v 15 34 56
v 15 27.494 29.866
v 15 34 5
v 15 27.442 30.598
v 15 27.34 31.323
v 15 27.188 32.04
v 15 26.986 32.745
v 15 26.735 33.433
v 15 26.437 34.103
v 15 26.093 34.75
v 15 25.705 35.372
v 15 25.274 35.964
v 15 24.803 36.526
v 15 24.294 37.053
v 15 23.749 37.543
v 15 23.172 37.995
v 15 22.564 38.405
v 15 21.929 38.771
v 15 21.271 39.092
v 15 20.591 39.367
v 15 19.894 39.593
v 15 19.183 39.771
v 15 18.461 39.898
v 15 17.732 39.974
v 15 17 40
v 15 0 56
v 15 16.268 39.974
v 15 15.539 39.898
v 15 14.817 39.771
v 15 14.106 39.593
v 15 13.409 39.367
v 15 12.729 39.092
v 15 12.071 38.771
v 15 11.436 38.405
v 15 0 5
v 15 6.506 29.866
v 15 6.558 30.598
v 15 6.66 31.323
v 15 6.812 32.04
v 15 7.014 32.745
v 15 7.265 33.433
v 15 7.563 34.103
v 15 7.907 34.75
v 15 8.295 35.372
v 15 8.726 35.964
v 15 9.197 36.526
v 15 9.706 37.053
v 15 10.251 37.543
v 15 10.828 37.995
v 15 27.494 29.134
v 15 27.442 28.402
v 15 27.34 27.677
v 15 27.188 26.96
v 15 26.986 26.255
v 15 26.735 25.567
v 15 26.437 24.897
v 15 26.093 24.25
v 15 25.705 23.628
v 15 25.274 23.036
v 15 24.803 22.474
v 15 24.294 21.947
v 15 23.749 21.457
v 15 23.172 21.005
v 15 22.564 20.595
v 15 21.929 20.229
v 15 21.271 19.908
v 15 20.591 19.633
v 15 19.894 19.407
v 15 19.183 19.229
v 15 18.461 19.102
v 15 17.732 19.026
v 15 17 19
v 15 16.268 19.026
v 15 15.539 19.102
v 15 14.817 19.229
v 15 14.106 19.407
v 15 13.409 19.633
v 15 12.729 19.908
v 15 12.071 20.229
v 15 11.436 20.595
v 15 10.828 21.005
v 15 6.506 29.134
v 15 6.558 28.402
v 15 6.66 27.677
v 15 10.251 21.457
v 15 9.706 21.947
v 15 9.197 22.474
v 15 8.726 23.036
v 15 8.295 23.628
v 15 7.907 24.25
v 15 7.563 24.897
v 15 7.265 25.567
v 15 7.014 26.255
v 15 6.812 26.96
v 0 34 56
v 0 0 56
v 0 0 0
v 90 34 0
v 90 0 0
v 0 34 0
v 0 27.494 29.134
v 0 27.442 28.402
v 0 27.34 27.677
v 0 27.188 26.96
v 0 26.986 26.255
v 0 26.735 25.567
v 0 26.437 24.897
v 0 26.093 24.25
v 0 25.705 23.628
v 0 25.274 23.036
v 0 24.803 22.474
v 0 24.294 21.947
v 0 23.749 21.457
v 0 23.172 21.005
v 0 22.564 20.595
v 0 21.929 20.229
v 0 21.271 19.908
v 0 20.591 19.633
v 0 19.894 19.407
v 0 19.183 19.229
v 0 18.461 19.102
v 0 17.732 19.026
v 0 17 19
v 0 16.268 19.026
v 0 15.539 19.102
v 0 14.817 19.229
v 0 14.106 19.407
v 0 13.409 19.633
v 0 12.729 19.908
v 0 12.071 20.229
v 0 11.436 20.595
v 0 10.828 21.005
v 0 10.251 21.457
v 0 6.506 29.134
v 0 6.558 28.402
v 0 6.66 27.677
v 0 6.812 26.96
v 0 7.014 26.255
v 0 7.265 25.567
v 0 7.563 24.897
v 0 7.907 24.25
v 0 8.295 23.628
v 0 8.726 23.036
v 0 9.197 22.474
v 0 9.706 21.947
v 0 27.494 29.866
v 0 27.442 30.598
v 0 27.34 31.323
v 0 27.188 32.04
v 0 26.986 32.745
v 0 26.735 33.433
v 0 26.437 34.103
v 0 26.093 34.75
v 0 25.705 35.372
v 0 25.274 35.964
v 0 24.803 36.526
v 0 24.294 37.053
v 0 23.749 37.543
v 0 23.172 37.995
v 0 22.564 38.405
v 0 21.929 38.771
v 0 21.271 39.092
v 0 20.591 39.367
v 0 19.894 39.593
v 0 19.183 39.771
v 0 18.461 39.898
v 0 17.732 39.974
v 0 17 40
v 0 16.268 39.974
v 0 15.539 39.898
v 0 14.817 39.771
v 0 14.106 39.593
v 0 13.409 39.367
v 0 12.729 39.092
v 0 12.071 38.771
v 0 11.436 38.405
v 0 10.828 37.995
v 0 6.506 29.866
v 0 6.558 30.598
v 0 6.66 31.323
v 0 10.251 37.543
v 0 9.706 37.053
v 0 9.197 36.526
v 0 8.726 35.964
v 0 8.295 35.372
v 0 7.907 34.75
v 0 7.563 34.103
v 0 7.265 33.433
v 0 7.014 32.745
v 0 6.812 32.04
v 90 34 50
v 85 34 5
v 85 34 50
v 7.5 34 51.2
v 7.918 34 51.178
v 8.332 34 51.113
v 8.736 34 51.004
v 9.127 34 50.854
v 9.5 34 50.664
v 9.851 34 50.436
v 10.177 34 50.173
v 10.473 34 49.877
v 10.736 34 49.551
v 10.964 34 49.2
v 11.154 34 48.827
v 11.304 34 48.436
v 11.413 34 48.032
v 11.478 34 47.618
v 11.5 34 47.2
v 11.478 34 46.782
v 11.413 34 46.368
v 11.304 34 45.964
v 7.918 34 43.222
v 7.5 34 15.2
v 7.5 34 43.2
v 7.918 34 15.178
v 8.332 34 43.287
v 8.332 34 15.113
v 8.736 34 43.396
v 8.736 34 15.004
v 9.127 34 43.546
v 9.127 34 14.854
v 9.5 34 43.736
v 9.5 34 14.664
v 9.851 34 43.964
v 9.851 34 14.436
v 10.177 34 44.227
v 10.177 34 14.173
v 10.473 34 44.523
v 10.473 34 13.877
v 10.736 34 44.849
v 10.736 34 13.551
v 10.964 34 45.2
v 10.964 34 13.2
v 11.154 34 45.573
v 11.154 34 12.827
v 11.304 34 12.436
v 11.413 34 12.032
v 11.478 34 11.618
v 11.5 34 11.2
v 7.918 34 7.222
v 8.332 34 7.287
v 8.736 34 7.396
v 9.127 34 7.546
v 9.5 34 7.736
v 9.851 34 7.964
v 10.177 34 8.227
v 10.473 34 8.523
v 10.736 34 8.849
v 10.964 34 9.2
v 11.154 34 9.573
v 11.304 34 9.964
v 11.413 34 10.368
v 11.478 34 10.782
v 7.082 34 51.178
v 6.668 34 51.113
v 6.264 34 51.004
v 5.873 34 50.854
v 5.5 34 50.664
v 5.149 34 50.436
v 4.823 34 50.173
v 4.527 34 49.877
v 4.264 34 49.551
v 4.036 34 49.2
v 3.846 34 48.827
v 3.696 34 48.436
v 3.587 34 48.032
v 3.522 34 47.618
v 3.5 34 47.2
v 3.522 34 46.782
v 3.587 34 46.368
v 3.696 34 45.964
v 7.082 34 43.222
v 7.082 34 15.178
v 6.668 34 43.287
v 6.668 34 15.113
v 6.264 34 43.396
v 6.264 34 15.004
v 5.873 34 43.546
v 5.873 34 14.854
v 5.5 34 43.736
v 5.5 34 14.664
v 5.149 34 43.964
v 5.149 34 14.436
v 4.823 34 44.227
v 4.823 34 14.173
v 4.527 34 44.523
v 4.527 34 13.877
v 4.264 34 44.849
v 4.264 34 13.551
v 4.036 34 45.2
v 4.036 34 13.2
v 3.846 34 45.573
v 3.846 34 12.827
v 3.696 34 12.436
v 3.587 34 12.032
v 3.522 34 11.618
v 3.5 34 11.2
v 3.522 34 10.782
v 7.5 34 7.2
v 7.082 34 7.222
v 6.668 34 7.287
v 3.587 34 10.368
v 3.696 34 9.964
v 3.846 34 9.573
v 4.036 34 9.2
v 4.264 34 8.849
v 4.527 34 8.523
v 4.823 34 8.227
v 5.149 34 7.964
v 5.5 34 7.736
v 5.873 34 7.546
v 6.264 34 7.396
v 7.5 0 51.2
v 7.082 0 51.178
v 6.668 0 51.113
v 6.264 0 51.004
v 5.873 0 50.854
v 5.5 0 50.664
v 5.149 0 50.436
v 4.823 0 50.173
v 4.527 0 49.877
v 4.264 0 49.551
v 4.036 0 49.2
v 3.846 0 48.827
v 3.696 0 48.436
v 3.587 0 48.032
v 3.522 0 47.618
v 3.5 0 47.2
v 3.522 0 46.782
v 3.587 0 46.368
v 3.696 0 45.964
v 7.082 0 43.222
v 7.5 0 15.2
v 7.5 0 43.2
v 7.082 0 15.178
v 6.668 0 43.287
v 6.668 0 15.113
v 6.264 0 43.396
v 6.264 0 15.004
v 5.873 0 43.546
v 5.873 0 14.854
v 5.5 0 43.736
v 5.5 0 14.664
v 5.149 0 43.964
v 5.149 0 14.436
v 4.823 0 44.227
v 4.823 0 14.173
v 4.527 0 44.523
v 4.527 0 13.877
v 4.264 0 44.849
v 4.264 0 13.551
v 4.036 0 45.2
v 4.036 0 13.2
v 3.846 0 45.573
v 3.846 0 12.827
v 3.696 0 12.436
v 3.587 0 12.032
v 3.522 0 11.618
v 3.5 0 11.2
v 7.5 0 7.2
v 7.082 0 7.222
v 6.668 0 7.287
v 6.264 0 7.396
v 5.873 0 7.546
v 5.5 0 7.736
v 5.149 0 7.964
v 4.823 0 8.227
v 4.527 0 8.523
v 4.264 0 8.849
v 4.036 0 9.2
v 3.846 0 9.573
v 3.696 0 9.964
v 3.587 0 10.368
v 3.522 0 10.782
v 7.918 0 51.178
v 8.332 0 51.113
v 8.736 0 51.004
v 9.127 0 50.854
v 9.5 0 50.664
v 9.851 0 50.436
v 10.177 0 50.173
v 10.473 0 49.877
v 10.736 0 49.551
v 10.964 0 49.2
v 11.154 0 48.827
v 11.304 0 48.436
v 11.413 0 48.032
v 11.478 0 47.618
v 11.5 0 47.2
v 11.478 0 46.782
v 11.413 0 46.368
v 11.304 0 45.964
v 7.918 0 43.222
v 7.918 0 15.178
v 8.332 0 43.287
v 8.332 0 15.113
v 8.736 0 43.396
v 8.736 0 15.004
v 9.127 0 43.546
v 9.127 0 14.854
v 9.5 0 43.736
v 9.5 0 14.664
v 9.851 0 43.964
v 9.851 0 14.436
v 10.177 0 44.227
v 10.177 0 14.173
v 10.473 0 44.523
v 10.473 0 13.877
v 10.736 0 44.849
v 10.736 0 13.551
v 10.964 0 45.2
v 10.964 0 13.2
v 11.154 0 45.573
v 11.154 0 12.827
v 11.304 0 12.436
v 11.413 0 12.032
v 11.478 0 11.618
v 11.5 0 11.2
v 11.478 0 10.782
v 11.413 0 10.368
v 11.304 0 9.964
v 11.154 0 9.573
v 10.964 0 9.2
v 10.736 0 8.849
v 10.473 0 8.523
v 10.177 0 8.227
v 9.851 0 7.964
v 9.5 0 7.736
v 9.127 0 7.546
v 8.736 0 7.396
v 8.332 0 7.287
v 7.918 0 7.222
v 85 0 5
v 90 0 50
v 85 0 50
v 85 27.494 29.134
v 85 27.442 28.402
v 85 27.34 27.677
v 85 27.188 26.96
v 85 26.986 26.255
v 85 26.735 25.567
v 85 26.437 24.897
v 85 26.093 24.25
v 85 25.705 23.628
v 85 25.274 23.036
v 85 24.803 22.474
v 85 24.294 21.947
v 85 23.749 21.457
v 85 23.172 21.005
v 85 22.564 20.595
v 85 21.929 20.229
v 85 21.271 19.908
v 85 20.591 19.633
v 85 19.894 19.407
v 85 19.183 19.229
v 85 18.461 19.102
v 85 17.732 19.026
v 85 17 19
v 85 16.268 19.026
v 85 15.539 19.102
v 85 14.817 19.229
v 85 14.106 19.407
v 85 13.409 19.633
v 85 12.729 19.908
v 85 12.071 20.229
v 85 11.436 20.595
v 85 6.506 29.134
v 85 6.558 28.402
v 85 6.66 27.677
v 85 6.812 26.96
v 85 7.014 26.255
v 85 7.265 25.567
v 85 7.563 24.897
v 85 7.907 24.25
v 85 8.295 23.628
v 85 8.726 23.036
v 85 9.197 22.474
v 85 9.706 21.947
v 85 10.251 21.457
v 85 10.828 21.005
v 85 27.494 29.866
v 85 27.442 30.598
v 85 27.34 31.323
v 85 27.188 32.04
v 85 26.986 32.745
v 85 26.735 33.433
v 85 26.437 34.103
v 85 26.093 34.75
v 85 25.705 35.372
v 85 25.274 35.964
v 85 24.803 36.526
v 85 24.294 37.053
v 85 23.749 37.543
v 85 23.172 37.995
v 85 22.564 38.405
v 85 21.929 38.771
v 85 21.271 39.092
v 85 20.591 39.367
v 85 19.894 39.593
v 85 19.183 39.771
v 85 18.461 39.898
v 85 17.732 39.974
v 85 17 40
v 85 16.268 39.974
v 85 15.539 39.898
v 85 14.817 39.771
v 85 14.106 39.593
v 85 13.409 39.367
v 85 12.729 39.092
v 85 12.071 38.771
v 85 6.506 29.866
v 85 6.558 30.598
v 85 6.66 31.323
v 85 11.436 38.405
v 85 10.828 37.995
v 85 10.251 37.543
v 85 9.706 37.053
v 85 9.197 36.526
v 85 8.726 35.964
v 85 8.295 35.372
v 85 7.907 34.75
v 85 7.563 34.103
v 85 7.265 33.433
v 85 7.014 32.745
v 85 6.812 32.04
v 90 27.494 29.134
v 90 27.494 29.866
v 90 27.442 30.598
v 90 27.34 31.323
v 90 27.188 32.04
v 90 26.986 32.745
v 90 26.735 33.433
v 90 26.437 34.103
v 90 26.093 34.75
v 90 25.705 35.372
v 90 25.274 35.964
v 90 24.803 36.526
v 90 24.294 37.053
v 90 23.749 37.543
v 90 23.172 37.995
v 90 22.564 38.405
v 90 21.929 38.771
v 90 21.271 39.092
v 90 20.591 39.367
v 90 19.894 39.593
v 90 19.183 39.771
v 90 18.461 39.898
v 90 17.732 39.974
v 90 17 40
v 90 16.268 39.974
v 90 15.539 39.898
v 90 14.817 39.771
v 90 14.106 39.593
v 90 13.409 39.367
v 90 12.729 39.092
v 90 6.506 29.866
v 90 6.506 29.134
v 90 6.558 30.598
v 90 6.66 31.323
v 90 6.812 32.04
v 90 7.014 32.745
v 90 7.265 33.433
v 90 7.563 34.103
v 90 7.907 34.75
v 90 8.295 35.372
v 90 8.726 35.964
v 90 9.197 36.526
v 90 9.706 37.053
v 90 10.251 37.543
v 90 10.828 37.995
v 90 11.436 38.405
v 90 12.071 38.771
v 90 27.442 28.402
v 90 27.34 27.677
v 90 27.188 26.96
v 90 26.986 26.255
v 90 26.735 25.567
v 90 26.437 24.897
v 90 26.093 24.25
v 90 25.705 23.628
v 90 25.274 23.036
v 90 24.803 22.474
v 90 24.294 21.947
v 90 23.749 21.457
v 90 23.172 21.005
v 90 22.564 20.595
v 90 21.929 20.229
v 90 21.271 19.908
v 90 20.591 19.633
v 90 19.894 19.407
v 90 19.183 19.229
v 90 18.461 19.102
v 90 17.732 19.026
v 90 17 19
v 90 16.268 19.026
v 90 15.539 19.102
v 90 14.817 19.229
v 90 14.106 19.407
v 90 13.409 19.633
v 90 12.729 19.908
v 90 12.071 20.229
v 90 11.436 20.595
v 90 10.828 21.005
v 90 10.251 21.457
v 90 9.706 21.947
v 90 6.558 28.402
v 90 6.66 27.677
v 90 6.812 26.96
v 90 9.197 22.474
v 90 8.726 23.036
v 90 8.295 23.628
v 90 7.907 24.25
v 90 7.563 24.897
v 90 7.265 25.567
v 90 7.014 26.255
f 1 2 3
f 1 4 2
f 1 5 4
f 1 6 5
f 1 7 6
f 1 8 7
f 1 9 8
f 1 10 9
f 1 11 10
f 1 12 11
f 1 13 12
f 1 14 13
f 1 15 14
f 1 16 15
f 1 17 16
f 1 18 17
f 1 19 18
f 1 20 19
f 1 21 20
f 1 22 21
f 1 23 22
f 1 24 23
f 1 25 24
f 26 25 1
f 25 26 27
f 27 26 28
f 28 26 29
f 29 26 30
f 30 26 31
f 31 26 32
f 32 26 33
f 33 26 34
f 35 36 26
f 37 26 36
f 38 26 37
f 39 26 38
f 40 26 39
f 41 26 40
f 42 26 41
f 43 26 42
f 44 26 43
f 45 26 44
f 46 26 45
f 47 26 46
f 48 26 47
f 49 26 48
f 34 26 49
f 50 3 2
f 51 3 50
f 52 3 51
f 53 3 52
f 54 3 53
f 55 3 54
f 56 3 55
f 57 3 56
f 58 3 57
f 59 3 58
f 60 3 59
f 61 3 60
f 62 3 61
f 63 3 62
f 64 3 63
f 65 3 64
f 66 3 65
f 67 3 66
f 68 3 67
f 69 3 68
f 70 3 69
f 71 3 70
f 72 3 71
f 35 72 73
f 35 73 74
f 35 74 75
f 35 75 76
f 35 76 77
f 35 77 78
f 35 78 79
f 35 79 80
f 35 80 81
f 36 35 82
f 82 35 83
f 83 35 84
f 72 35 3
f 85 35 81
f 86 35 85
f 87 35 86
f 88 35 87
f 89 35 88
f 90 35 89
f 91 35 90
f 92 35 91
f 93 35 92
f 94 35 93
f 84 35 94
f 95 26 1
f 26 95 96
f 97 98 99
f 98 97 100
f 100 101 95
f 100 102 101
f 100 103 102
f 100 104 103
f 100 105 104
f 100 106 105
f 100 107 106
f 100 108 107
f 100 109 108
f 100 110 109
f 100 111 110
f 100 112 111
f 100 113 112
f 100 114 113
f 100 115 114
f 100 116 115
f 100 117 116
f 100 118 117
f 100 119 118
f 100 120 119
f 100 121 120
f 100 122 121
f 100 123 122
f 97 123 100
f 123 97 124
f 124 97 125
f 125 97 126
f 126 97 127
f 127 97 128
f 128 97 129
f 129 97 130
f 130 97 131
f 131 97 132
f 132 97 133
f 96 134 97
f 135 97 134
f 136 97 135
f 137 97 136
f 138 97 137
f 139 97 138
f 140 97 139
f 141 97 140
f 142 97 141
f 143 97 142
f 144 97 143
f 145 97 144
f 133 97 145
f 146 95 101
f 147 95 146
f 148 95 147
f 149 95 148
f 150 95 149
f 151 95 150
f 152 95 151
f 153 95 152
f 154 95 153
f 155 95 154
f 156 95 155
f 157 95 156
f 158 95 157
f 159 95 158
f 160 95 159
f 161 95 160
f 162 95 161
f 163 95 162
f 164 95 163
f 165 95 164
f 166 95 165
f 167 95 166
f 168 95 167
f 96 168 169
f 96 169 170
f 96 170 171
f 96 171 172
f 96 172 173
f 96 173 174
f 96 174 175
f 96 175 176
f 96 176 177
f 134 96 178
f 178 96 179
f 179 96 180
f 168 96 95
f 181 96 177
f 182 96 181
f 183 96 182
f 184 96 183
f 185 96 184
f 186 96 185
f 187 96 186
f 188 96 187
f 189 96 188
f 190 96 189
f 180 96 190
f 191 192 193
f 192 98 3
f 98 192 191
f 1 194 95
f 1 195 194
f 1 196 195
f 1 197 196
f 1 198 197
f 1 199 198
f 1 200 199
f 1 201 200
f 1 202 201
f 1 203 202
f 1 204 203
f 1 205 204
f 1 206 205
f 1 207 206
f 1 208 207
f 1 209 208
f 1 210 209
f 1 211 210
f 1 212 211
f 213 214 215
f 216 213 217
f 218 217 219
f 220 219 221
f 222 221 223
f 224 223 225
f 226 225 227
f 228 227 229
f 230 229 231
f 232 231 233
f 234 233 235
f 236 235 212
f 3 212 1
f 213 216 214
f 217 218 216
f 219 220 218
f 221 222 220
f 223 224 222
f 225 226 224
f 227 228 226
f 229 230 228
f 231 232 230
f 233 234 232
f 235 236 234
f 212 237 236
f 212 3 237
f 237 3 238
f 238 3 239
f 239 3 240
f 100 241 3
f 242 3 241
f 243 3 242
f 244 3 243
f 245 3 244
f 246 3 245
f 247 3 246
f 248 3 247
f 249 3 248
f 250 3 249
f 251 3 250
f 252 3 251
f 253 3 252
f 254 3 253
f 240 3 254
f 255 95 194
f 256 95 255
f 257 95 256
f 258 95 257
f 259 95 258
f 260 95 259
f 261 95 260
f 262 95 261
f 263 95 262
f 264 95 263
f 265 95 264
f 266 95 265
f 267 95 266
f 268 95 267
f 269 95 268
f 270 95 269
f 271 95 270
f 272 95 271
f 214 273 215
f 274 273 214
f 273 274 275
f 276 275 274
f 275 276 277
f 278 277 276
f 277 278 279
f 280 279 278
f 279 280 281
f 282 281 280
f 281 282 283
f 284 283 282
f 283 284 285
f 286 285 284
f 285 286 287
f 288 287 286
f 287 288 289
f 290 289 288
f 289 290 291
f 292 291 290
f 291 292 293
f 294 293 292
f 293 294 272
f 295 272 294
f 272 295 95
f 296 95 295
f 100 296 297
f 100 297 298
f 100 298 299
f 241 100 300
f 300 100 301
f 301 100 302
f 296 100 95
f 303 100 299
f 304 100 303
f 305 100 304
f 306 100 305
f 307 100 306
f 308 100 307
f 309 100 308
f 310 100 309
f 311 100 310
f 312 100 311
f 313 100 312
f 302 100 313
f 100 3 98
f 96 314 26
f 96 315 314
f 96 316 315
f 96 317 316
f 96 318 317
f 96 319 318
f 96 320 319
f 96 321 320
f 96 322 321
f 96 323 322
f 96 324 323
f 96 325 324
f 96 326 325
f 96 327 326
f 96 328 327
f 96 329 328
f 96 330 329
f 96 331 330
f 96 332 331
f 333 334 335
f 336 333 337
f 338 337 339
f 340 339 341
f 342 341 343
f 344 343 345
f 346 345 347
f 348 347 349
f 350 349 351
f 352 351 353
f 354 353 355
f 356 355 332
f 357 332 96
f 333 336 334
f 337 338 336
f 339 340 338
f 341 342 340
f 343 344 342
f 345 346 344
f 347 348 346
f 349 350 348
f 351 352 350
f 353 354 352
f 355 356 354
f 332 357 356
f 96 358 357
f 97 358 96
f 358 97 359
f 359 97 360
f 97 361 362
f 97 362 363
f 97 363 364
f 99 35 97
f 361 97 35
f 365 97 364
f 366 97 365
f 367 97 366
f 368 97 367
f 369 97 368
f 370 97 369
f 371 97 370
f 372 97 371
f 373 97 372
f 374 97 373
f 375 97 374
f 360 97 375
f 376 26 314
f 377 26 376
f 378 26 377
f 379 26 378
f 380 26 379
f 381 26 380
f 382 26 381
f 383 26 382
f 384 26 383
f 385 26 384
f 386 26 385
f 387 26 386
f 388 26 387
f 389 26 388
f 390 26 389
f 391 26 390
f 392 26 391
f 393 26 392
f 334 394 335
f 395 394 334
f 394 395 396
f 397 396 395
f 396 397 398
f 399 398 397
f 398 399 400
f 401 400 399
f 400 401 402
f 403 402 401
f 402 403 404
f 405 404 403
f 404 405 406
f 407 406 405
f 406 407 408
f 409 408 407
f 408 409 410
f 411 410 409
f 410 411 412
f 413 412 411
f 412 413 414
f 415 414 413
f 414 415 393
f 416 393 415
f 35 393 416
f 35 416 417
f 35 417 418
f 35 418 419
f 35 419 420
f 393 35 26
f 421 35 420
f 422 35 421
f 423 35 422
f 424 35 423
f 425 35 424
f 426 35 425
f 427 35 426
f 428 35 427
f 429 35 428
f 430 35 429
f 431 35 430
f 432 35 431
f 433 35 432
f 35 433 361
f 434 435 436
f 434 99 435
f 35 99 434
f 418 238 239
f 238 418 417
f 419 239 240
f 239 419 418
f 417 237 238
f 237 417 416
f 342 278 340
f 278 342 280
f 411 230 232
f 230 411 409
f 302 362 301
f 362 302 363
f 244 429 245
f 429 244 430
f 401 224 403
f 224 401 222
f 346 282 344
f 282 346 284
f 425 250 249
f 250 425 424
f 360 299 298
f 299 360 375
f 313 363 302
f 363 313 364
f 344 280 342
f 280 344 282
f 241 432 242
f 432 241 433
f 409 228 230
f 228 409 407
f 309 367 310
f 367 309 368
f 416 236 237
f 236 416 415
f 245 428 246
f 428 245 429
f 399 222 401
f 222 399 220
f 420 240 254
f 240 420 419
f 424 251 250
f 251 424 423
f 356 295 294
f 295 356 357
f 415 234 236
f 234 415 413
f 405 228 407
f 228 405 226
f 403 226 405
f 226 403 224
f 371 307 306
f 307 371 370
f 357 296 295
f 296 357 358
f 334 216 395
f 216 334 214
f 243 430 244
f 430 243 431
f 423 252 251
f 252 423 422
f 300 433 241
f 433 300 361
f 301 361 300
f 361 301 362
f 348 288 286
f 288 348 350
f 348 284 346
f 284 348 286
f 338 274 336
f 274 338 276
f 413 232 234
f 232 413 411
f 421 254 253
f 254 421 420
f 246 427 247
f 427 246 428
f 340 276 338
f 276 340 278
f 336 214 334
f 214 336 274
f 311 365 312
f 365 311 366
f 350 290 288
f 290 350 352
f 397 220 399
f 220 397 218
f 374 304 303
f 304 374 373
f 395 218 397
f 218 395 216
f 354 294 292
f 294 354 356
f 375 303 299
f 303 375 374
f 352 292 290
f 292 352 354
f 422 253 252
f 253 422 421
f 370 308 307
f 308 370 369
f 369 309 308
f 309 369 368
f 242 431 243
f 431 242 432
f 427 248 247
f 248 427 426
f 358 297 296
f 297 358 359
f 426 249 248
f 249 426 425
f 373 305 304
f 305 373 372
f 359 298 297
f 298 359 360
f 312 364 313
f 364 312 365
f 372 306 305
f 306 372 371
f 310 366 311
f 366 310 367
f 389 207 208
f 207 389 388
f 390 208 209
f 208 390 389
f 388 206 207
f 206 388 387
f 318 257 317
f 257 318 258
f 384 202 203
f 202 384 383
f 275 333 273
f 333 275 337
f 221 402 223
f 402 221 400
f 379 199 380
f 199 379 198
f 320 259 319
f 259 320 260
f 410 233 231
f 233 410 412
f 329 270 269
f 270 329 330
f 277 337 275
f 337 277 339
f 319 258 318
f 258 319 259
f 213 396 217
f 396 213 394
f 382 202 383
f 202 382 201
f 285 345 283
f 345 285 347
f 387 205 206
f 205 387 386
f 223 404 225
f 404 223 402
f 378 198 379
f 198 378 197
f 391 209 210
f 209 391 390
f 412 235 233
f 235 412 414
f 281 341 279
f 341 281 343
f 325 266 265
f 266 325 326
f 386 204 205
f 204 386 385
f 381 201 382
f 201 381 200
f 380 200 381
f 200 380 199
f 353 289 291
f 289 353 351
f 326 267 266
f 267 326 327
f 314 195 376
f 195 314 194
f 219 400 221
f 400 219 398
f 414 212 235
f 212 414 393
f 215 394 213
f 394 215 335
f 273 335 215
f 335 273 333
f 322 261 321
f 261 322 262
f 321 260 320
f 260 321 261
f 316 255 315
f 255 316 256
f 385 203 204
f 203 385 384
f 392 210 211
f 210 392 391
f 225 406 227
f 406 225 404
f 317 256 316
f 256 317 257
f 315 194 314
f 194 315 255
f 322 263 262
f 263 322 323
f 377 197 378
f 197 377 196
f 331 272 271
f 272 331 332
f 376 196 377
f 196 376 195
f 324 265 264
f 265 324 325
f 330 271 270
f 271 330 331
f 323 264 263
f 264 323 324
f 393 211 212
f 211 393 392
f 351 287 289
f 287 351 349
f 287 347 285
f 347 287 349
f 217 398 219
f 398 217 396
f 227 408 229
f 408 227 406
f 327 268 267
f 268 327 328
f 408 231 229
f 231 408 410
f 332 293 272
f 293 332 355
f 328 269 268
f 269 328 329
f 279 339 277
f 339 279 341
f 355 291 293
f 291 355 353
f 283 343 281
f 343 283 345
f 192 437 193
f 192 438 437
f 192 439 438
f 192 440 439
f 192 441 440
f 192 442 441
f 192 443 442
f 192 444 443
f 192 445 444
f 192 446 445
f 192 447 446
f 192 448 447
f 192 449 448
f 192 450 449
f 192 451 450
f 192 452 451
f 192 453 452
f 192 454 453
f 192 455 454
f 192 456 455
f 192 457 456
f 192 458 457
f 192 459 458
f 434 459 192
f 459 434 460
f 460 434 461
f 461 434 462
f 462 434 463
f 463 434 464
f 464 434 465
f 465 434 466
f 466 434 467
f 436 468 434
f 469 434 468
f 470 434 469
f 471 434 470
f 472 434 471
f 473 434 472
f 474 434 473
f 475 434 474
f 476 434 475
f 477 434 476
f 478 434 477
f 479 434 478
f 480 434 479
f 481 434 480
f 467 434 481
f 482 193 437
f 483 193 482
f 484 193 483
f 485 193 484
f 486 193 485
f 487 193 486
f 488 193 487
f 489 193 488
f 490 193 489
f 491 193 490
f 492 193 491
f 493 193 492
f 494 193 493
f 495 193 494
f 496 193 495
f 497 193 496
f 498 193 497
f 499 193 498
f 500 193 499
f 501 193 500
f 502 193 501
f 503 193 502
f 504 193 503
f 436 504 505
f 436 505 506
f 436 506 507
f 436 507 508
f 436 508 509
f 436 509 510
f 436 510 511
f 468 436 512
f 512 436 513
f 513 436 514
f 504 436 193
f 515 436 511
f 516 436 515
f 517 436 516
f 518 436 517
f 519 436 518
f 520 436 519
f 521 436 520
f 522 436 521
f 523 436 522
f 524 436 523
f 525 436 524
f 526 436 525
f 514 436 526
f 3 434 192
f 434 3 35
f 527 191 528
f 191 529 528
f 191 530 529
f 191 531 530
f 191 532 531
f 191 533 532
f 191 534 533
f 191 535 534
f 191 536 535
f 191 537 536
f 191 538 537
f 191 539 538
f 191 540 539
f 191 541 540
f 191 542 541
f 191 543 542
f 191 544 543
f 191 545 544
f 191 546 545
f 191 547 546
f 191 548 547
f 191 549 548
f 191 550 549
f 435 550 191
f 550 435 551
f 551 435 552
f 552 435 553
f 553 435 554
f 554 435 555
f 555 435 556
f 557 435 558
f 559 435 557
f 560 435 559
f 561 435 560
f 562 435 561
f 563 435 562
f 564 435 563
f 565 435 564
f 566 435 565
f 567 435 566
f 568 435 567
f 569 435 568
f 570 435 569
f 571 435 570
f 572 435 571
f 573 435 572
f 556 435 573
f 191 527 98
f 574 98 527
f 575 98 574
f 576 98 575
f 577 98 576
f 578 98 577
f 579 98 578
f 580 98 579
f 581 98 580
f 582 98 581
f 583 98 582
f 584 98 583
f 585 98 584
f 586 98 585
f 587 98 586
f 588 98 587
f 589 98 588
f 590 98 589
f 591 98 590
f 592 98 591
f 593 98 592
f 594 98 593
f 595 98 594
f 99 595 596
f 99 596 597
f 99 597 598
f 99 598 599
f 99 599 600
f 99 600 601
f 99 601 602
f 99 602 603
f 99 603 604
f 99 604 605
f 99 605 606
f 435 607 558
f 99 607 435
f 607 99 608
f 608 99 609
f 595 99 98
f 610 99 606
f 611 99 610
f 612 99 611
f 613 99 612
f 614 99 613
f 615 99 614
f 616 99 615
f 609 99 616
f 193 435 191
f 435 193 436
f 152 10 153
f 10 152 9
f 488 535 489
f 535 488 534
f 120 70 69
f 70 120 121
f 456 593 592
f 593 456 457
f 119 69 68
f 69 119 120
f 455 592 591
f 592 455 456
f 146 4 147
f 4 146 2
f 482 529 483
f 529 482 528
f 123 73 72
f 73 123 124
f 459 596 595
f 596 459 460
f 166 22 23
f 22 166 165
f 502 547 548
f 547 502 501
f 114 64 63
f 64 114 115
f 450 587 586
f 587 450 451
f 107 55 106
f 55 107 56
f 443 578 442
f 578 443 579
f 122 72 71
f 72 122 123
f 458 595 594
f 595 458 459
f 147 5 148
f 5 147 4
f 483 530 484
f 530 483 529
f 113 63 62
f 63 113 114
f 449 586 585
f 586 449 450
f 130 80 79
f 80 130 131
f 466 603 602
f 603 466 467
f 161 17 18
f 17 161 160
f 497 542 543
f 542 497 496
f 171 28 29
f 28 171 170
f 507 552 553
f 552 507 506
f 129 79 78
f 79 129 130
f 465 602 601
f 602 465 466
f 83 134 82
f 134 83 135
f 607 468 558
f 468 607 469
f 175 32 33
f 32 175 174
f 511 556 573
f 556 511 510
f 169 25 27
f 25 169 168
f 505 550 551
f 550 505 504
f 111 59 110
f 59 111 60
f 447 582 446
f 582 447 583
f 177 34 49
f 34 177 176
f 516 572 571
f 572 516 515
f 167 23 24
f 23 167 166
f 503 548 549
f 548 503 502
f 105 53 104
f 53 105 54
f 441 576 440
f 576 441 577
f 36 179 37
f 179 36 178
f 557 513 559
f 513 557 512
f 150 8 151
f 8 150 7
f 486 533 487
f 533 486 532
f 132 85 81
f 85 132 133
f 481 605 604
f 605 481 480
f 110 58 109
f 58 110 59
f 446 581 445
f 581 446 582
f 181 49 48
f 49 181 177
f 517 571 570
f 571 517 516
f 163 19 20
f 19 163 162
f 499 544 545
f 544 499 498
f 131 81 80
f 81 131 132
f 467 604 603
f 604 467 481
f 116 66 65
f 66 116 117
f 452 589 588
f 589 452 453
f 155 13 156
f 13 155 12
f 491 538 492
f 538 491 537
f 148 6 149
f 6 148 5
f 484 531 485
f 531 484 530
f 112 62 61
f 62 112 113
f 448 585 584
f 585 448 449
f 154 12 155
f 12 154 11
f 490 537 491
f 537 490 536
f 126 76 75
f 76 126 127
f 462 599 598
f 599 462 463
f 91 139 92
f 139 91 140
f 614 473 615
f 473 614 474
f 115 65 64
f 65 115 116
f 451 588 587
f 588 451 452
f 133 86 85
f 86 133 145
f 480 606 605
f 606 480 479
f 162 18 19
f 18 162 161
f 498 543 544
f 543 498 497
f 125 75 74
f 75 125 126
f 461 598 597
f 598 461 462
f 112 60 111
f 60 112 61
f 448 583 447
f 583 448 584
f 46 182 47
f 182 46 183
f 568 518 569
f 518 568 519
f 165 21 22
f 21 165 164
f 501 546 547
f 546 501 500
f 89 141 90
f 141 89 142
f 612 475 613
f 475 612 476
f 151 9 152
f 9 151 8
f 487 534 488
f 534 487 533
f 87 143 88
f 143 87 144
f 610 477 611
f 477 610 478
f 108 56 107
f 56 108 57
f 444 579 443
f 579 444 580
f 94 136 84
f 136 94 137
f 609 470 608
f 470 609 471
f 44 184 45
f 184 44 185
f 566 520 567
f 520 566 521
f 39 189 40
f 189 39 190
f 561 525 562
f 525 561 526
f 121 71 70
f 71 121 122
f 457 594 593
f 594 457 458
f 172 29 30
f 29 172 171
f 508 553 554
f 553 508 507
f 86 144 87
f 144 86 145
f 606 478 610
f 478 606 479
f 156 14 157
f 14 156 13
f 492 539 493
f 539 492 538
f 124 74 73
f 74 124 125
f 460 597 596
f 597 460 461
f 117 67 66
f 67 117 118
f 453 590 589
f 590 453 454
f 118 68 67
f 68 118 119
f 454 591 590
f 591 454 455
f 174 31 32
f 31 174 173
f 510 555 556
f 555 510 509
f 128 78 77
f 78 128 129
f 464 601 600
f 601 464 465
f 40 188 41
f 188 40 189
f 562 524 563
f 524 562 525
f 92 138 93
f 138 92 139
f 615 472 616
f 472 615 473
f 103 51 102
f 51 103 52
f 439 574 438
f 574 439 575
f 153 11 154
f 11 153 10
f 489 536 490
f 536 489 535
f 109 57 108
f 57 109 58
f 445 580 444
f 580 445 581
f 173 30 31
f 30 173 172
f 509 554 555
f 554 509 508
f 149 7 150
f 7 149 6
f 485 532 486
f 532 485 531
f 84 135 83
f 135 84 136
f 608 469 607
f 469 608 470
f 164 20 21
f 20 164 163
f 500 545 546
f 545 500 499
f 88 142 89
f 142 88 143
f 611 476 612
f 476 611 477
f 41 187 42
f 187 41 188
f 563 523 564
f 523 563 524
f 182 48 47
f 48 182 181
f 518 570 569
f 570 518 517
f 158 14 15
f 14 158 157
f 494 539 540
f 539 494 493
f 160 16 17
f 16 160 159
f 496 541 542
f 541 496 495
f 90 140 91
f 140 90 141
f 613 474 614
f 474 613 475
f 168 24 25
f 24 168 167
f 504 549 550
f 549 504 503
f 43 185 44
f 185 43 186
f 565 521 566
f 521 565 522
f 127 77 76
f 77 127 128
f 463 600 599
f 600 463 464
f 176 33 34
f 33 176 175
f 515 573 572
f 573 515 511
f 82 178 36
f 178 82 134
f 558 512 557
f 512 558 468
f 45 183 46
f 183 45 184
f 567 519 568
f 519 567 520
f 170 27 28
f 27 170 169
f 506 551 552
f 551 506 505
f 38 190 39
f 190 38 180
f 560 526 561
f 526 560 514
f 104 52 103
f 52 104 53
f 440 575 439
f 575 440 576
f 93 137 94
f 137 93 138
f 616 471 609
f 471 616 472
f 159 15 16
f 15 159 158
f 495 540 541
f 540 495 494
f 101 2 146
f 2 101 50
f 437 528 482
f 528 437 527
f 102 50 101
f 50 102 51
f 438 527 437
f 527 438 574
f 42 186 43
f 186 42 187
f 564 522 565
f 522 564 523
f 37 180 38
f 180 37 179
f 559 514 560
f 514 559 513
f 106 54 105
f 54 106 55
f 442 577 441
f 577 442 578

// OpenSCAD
// file: ../../flashlight-holder.scad
module flashlightHolder(basketAttachment_zLength = 22,
                        extendoLengthX = 35,
                        flashlightRadius = 9.5,
                        roundiness = 90,
                        showFlashlight = false,
                        yLength = 30,
                        zLengthTranslate = 0.5)
{
    holderLength_z = 50;
    cutoutTranslate_y = yLength / 2.0;
    cutoutTranslate_z = holderLength_z - flashlightRadius - 10;
    flashlightTranslate = [-0.01, cutoutTranslate_y, cutoutTranslate_z];

    difference()
    {
        flashlightHolder_core(basketAttachment_zLength = basketAttachment_zLength,
                        cutoutTranslate_y = cutoutTranslate_y,
                        cutoutTranslate_z = cutoutTranslate_z,
                        extendoLengthX = extendoLengthX,
                        flashlightRadius = flashlightRadius,
                        flashlightTranslate = flashlightTranslate,
                        holderLength_z = holderLength_z,
                        roundiness = roundiness,
                        showFlashlight = showFlashlight,
                        yLength = yLength,
                        zLengthTranslate = zLengthTranslate);

        // flashlight cutout
        color("green")
        translate(flashlightTranslate)    
        rotate([0,90,0])
        cylinder(r = flashlightRadius, h = extendoLengthX + 9, $fn = roundiness);                        
    }

    // flashlight
    if(showFlashlight)
    {
        flashlight(radius = flashlightRadius, 
                   roundiness = roundiness,
                   translate = flashlightTranslate);
    }

}

module flashlightHolder_core(basketAttachment_zLength,
                        cutoutTranslate_y,
                        cutoutTranslate_z,
                        extendoLengthX,
                        flashlightRadius,
                        flashlightTranslate,
                        holderLength_z,
                        roundiness,
                        showFlashlight,
                        yLength,
                        zLengthTranslate)
{
    union()
    {    
        flashlightHolder_basketAttachment(yLength = yLength,
                        zLength = basketAttachment_zLength,
                        zLengthTranslate = zLengthTranslate);

        // extendo
        color("blue")
        cube([extendoLengthX, yLength, 5]);

        // flashlight holder and cutout    
        flashlightHolder_coreFront(extendoLengthX = extendoLengthX,
                                flashlightTranslate = flashlightTranslate,
                            flashlightRadius = flashlightRadius,
                            holderLength_z = holderLength_z,
                            length_z_SUS = holderLength_z, 
                            roundiness = roundiness,
                            yLength = yLength);
    }
}

module flashlightHolder_basketAttachment(yLength, 
                                         zLength,
                                         zLengthTranslate)
{
    difference()
    {
        xLength = 15;
        color("black")
        cube([xLength, yLength, zLength]);    

        // lower cutout
        cutoutLength = yLength + 5 * 2;
        xTranslate = xLength * 0.5;
        yTranslate = cutoutLength - 5;
        zTranslate = zLength * zLengthTranslate;
        color("green")
        translate([xTranslate, yTranslate, zTranslate])
        rotate([90, 0,0])
        cylinder(r = 4, h = cutoutLength, $fn = 60);       

        // upper cutout
        color("green")
        translate([xTranslate, yTranslate, zTranslate + 36])
        rotate([90, 0,0])
        cylinder(r = 4, h = cutoutLength, $fn = 60);    
    }
}


module flashlight(radius, roundiness, translate)
{
    length = 91;   // this was measured
    extendedLength = 102;  // this was measured (not used, so far)

    // handle
    translate(translate)
    rotate([0,90,0])
    %cylinder(r = radius, h = length, $fn = roundiness);

    // light
    lightHeight = 5;
    lightTranslate = [translate[0] + length - lightHeight,
                        translate[1],
                        translate[2]];
    color("yellow")
    translate(lightTranslate)
    rotate([0,90,0])
    %cylinder(r = radius, 
              h = lightHeight, 
              $fn = roundiness);
}

module flashlightHolder_coreFront(extendoLengthX, 
                                flashlightRadius,
                                flashlightTranslate,
                                holderLength_z, 
                                length_z_SUS, 
                                roundiness,
                                yLength)
{
        color("pink")
        translate([extendoLengthX,0,0])
        cube([5, yLength, holderLength_z]);
}
// main file
use <../../flashlight-holder.scad>


flashlightDiameter = 21; // this was measured

flashlightHolder(basketAttachment_zLength = 56,
                 extendoLengthX = 85,
                 flashlightRadius = flashlightDiameter / 2.0,
                 showFlashlight = true,
                 yLength = 34,
                 zLengthTranslate = 0.2);
